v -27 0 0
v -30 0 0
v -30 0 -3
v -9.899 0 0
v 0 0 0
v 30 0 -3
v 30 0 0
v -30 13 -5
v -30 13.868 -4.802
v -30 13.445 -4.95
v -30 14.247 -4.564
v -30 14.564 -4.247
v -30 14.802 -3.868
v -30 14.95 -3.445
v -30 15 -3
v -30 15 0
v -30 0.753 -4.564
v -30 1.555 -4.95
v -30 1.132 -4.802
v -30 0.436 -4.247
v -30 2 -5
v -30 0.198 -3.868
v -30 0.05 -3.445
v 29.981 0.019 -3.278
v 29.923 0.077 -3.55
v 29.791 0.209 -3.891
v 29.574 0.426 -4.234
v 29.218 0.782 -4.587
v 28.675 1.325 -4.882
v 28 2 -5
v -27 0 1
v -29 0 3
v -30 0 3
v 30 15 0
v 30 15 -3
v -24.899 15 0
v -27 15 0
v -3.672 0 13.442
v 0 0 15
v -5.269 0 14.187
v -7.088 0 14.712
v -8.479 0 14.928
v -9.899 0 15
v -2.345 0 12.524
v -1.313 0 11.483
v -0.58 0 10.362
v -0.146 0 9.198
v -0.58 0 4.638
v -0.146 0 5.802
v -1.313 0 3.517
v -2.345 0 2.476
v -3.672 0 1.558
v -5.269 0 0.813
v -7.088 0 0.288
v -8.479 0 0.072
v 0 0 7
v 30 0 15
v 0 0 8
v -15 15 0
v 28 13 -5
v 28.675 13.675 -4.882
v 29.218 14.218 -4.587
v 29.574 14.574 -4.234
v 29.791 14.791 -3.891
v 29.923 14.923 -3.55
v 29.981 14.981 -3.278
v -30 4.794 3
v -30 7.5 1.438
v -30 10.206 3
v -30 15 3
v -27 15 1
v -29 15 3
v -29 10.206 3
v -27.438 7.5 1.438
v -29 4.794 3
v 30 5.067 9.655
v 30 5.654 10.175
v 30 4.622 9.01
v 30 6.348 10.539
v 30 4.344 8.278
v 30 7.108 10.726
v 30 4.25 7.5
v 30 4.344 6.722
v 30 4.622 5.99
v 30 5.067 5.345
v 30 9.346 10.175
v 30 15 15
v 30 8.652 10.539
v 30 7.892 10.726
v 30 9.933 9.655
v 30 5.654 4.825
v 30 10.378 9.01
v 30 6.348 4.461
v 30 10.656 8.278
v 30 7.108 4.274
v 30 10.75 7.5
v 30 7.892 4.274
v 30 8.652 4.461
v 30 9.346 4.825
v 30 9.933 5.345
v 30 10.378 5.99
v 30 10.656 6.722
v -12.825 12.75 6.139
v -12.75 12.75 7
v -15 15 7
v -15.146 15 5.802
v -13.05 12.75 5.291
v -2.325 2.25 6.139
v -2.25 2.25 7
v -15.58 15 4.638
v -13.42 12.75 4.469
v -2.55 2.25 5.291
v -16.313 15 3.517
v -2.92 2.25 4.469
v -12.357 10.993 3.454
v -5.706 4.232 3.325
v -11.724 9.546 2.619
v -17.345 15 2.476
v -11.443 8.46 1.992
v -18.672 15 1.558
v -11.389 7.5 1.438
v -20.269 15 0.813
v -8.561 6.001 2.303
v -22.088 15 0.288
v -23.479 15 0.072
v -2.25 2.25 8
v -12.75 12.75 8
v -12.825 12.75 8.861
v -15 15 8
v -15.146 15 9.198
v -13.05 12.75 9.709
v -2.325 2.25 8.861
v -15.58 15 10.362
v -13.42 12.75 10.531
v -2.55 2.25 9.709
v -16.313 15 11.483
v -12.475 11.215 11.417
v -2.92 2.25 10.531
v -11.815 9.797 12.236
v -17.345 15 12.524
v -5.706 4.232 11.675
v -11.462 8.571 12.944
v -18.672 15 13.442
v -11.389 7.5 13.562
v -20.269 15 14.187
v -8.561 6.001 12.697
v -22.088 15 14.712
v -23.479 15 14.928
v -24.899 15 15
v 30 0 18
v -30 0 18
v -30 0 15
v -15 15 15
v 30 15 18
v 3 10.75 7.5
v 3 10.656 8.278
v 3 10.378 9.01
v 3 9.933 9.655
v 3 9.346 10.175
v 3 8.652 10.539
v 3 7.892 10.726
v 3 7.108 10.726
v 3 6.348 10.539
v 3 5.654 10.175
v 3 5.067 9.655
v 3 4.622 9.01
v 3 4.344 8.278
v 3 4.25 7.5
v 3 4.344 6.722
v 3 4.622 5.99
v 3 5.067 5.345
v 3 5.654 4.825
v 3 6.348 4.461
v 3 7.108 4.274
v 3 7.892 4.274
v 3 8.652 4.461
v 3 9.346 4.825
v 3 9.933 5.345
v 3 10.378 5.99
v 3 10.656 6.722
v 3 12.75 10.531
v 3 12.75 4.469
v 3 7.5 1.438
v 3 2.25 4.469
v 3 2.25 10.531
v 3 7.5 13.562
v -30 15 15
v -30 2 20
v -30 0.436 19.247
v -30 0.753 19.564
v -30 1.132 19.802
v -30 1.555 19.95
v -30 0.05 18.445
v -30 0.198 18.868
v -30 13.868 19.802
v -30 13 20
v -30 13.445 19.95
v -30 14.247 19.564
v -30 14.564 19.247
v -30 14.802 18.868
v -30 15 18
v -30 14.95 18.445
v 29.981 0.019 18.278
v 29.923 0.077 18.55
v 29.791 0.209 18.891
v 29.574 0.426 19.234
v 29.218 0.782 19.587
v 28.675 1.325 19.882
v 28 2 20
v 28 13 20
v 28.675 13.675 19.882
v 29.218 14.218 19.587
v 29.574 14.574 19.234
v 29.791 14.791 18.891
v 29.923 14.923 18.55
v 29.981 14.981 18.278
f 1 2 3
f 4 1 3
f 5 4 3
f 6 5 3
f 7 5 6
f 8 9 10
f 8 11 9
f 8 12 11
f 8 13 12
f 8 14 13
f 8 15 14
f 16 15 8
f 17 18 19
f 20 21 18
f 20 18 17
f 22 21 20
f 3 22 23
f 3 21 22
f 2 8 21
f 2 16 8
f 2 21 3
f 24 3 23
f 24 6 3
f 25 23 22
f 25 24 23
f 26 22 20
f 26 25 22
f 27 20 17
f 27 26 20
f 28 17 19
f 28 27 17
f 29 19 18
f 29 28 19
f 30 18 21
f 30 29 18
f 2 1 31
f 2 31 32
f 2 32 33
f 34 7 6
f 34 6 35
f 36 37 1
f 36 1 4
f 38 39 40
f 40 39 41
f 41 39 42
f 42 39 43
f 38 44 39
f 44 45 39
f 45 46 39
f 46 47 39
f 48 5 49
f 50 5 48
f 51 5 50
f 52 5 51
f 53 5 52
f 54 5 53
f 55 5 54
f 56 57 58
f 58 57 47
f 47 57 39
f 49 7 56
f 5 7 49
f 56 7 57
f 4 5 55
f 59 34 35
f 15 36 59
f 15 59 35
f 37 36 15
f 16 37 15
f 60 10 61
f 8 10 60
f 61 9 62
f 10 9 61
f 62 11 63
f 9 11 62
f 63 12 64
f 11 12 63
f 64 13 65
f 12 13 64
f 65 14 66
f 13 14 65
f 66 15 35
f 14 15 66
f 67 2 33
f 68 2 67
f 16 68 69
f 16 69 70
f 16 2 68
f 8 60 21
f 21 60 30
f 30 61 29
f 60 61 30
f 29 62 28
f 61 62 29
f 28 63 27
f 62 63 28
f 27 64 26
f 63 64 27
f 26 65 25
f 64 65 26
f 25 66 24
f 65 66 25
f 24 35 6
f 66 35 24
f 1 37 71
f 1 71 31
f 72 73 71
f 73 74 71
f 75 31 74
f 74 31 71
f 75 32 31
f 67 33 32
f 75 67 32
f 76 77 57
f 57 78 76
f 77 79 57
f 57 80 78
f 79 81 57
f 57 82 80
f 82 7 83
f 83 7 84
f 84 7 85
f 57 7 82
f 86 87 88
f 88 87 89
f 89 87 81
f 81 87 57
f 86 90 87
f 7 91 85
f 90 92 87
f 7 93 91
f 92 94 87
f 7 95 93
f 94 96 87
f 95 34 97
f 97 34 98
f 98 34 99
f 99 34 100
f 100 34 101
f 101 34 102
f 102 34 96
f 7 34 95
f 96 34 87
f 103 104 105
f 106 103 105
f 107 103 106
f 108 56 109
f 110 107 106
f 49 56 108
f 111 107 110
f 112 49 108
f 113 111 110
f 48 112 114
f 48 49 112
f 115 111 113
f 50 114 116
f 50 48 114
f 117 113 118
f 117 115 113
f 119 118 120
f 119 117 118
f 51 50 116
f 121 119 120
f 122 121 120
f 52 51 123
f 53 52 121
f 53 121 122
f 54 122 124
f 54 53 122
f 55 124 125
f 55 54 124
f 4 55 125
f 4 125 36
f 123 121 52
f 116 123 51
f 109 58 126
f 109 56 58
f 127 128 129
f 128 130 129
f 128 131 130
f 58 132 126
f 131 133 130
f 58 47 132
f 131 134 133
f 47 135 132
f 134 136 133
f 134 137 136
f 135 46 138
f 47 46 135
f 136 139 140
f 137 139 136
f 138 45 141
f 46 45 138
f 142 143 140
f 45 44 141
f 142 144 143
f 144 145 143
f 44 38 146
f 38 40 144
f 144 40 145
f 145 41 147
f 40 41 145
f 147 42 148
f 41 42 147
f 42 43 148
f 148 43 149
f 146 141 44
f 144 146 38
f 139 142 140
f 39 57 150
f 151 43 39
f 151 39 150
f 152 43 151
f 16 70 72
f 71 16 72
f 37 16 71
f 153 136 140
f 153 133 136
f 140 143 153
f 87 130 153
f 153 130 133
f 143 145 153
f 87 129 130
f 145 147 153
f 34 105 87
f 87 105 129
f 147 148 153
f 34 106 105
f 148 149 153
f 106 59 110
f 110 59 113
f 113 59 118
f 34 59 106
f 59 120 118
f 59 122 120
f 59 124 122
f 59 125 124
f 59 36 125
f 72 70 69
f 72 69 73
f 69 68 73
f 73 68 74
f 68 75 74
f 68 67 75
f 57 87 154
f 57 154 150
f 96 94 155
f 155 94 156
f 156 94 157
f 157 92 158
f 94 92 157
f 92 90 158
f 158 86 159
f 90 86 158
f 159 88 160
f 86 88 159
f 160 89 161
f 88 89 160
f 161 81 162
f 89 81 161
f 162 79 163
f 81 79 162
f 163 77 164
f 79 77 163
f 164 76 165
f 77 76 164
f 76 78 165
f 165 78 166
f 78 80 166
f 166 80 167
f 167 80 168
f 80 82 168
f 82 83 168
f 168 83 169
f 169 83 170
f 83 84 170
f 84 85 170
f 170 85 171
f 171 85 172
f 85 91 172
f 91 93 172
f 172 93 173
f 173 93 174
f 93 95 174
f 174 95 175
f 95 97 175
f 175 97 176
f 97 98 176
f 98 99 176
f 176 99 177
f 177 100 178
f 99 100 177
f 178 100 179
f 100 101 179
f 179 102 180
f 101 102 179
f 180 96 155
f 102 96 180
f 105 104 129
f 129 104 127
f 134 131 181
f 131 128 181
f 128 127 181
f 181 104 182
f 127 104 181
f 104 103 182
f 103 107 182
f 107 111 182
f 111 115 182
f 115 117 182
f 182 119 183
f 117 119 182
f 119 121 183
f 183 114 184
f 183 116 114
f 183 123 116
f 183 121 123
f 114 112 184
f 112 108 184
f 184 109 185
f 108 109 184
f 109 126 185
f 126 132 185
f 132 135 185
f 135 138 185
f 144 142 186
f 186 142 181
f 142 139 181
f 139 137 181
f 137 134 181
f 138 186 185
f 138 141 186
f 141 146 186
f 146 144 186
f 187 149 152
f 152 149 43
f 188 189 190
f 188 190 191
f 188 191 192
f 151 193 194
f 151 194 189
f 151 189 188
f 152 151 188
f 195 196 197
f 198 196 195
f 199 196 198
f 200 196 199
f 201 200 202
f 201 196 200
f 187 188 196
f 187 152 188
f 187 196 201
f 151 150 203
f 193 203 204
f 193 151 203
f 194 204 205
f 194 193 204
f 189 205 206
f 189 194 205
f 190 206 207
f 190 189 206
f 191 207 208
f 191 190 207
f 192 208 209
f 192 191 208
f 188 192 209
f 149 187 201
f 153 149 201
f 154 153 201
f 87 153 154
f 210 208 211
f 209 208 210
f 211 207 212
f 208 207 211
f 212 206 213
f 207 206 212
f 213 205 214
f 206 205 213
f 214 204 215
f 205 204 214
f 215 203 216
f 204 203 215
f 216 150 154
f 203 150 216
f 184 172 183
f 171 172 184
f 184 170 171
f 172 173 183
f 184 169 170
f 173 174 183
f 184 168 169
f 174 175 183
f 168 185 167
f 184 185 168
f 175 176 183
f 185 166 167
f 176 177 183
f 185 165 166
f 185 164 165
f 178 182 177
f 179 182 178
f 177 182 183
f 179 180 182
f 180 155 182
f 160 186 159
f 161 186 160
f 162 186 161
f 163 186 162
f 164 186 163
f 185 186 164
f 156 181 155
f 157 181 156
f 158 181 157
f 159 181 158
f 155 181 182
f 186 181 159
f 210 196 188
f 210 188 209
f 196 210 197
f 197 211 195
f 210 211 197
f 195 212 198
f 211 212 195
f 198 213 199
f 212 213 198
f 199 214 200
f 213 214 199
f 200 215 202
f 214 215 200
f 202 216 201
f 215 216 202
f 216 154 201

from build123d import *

# Parameters (mm, degrees)
PAD_DEPTH       = 15
SKETCH001_W     = 60
SKETCH001_H     = 15
PAD001_DEPTH    = 5
SKETCH002_W     = 60
SKETCH002_H     = 15
PAD002_DEPTH    = 5
FILLET_R        = 7
SKETCH003_W     = 3
SKETCH003_H     = 15
PAD003_DEPTH    = 3
CHAMFER_SIZE    = 2
SKETCH004_R     = 3.25
POCKET_DEPTH    = 60.001
POCKET001_DEPTH = 33
FILLET001_R     = 2


with BuildPart() as part:
    # Sketch → Pad (new body)
    with BuildSketch(Plane.XY):
        Polygon((0, 0), (30, 0), (30, 15), (-15, 15), align=None)
    extrude(amount=PAD_DEPTH)

    # Sketch001 (on Face6 of Pad) → Pad001 (join)
    with BuildSketch(Plane.XY.offset(15)):
        with Locations((0, 7.5)):
            Rectangle(SKETCH001_W, SKETCH001_H)
    extrude(amount=PAD001_DEPTH)

    # Sketch002 (on Face4 of Pad001) → Pad002 (join)
    with BuildSketch(Plane(origin=(0, 0, 0), x_dir=(1, 0, 0), z_dir=(0, 0, -1))):
        with Locations((0, -7.5)):
            Rectangle(SKETCH002_W, SKETCH002_H)
    extrude(amount=PAD002_DEPTH)

    # Fillet
    fillet_edges = [part.edges().sort_by_distance(p)[0] for p in [
        (-7.5, 7.5, 0),
        (-7.5, 7.5, 15),
    ]]
    fillet(fillet_edges, radius=FILLET_R)

    # Sketch003 (on Face9 of Fillet) → Pad003 (join)
    with BuildSketch(Plane.XY):
        with Locations((-28.5, 7.5)):
            Rectangle(SKETCH003_W, SKETCH003_H)
    extrude(amount=PAD003_DEPTH)

    # Chamfer
    chamfer_edges = [part.edges().sort_by_distance(p)[0] for p in [
        (-27, 7.5, 3),
    ]]
    chamfer(chamfer_edges, length=CHAMFER_SIZE)

    # Sketch004 (on Face18 of Chamfer) → Pocket (cut, through all)
    with BuildSketch(Plane.YZ.offset(30)):
        with Locations((7.5, 7.5)):
            Circle(SKETCH004_R)
    extrude(amount=-POCKET_DEPTH, mode=Mode.SUBTRACT)

    # Sketch005 (on Face23 of Pocket) → Pocket001 (cut)
    with BuildSketch(Plane(origin=(-30, 0, 0), x_dir=(0, -1, 0), z_dir=(-1, 0, 0))):
        Polygon((-7.5, 13.562178), (-12.75, 10.531089), (-12.75, 4.468911), (-7.5, 1.437822), (-2.25, 4.468911), (-2.25, 10.531089), align=None)
    extrude(amount=-POCKET001_DEPTH, mode=Mode.SUBTRACT)

    # Fillet001
    fillet001_edges = [part.edges().sort_by_distance(p)[0] for p in [
        (30, 7.5, 20),
        (30, 7.5, -5),
        (0, 0, 20),
        (0, 0, -5),
        (0, 15, 20),
        (0, 15, -5),
    ]]
    fillet(fillet001_edges, radius=FILLET001_R)


solid = part.part
